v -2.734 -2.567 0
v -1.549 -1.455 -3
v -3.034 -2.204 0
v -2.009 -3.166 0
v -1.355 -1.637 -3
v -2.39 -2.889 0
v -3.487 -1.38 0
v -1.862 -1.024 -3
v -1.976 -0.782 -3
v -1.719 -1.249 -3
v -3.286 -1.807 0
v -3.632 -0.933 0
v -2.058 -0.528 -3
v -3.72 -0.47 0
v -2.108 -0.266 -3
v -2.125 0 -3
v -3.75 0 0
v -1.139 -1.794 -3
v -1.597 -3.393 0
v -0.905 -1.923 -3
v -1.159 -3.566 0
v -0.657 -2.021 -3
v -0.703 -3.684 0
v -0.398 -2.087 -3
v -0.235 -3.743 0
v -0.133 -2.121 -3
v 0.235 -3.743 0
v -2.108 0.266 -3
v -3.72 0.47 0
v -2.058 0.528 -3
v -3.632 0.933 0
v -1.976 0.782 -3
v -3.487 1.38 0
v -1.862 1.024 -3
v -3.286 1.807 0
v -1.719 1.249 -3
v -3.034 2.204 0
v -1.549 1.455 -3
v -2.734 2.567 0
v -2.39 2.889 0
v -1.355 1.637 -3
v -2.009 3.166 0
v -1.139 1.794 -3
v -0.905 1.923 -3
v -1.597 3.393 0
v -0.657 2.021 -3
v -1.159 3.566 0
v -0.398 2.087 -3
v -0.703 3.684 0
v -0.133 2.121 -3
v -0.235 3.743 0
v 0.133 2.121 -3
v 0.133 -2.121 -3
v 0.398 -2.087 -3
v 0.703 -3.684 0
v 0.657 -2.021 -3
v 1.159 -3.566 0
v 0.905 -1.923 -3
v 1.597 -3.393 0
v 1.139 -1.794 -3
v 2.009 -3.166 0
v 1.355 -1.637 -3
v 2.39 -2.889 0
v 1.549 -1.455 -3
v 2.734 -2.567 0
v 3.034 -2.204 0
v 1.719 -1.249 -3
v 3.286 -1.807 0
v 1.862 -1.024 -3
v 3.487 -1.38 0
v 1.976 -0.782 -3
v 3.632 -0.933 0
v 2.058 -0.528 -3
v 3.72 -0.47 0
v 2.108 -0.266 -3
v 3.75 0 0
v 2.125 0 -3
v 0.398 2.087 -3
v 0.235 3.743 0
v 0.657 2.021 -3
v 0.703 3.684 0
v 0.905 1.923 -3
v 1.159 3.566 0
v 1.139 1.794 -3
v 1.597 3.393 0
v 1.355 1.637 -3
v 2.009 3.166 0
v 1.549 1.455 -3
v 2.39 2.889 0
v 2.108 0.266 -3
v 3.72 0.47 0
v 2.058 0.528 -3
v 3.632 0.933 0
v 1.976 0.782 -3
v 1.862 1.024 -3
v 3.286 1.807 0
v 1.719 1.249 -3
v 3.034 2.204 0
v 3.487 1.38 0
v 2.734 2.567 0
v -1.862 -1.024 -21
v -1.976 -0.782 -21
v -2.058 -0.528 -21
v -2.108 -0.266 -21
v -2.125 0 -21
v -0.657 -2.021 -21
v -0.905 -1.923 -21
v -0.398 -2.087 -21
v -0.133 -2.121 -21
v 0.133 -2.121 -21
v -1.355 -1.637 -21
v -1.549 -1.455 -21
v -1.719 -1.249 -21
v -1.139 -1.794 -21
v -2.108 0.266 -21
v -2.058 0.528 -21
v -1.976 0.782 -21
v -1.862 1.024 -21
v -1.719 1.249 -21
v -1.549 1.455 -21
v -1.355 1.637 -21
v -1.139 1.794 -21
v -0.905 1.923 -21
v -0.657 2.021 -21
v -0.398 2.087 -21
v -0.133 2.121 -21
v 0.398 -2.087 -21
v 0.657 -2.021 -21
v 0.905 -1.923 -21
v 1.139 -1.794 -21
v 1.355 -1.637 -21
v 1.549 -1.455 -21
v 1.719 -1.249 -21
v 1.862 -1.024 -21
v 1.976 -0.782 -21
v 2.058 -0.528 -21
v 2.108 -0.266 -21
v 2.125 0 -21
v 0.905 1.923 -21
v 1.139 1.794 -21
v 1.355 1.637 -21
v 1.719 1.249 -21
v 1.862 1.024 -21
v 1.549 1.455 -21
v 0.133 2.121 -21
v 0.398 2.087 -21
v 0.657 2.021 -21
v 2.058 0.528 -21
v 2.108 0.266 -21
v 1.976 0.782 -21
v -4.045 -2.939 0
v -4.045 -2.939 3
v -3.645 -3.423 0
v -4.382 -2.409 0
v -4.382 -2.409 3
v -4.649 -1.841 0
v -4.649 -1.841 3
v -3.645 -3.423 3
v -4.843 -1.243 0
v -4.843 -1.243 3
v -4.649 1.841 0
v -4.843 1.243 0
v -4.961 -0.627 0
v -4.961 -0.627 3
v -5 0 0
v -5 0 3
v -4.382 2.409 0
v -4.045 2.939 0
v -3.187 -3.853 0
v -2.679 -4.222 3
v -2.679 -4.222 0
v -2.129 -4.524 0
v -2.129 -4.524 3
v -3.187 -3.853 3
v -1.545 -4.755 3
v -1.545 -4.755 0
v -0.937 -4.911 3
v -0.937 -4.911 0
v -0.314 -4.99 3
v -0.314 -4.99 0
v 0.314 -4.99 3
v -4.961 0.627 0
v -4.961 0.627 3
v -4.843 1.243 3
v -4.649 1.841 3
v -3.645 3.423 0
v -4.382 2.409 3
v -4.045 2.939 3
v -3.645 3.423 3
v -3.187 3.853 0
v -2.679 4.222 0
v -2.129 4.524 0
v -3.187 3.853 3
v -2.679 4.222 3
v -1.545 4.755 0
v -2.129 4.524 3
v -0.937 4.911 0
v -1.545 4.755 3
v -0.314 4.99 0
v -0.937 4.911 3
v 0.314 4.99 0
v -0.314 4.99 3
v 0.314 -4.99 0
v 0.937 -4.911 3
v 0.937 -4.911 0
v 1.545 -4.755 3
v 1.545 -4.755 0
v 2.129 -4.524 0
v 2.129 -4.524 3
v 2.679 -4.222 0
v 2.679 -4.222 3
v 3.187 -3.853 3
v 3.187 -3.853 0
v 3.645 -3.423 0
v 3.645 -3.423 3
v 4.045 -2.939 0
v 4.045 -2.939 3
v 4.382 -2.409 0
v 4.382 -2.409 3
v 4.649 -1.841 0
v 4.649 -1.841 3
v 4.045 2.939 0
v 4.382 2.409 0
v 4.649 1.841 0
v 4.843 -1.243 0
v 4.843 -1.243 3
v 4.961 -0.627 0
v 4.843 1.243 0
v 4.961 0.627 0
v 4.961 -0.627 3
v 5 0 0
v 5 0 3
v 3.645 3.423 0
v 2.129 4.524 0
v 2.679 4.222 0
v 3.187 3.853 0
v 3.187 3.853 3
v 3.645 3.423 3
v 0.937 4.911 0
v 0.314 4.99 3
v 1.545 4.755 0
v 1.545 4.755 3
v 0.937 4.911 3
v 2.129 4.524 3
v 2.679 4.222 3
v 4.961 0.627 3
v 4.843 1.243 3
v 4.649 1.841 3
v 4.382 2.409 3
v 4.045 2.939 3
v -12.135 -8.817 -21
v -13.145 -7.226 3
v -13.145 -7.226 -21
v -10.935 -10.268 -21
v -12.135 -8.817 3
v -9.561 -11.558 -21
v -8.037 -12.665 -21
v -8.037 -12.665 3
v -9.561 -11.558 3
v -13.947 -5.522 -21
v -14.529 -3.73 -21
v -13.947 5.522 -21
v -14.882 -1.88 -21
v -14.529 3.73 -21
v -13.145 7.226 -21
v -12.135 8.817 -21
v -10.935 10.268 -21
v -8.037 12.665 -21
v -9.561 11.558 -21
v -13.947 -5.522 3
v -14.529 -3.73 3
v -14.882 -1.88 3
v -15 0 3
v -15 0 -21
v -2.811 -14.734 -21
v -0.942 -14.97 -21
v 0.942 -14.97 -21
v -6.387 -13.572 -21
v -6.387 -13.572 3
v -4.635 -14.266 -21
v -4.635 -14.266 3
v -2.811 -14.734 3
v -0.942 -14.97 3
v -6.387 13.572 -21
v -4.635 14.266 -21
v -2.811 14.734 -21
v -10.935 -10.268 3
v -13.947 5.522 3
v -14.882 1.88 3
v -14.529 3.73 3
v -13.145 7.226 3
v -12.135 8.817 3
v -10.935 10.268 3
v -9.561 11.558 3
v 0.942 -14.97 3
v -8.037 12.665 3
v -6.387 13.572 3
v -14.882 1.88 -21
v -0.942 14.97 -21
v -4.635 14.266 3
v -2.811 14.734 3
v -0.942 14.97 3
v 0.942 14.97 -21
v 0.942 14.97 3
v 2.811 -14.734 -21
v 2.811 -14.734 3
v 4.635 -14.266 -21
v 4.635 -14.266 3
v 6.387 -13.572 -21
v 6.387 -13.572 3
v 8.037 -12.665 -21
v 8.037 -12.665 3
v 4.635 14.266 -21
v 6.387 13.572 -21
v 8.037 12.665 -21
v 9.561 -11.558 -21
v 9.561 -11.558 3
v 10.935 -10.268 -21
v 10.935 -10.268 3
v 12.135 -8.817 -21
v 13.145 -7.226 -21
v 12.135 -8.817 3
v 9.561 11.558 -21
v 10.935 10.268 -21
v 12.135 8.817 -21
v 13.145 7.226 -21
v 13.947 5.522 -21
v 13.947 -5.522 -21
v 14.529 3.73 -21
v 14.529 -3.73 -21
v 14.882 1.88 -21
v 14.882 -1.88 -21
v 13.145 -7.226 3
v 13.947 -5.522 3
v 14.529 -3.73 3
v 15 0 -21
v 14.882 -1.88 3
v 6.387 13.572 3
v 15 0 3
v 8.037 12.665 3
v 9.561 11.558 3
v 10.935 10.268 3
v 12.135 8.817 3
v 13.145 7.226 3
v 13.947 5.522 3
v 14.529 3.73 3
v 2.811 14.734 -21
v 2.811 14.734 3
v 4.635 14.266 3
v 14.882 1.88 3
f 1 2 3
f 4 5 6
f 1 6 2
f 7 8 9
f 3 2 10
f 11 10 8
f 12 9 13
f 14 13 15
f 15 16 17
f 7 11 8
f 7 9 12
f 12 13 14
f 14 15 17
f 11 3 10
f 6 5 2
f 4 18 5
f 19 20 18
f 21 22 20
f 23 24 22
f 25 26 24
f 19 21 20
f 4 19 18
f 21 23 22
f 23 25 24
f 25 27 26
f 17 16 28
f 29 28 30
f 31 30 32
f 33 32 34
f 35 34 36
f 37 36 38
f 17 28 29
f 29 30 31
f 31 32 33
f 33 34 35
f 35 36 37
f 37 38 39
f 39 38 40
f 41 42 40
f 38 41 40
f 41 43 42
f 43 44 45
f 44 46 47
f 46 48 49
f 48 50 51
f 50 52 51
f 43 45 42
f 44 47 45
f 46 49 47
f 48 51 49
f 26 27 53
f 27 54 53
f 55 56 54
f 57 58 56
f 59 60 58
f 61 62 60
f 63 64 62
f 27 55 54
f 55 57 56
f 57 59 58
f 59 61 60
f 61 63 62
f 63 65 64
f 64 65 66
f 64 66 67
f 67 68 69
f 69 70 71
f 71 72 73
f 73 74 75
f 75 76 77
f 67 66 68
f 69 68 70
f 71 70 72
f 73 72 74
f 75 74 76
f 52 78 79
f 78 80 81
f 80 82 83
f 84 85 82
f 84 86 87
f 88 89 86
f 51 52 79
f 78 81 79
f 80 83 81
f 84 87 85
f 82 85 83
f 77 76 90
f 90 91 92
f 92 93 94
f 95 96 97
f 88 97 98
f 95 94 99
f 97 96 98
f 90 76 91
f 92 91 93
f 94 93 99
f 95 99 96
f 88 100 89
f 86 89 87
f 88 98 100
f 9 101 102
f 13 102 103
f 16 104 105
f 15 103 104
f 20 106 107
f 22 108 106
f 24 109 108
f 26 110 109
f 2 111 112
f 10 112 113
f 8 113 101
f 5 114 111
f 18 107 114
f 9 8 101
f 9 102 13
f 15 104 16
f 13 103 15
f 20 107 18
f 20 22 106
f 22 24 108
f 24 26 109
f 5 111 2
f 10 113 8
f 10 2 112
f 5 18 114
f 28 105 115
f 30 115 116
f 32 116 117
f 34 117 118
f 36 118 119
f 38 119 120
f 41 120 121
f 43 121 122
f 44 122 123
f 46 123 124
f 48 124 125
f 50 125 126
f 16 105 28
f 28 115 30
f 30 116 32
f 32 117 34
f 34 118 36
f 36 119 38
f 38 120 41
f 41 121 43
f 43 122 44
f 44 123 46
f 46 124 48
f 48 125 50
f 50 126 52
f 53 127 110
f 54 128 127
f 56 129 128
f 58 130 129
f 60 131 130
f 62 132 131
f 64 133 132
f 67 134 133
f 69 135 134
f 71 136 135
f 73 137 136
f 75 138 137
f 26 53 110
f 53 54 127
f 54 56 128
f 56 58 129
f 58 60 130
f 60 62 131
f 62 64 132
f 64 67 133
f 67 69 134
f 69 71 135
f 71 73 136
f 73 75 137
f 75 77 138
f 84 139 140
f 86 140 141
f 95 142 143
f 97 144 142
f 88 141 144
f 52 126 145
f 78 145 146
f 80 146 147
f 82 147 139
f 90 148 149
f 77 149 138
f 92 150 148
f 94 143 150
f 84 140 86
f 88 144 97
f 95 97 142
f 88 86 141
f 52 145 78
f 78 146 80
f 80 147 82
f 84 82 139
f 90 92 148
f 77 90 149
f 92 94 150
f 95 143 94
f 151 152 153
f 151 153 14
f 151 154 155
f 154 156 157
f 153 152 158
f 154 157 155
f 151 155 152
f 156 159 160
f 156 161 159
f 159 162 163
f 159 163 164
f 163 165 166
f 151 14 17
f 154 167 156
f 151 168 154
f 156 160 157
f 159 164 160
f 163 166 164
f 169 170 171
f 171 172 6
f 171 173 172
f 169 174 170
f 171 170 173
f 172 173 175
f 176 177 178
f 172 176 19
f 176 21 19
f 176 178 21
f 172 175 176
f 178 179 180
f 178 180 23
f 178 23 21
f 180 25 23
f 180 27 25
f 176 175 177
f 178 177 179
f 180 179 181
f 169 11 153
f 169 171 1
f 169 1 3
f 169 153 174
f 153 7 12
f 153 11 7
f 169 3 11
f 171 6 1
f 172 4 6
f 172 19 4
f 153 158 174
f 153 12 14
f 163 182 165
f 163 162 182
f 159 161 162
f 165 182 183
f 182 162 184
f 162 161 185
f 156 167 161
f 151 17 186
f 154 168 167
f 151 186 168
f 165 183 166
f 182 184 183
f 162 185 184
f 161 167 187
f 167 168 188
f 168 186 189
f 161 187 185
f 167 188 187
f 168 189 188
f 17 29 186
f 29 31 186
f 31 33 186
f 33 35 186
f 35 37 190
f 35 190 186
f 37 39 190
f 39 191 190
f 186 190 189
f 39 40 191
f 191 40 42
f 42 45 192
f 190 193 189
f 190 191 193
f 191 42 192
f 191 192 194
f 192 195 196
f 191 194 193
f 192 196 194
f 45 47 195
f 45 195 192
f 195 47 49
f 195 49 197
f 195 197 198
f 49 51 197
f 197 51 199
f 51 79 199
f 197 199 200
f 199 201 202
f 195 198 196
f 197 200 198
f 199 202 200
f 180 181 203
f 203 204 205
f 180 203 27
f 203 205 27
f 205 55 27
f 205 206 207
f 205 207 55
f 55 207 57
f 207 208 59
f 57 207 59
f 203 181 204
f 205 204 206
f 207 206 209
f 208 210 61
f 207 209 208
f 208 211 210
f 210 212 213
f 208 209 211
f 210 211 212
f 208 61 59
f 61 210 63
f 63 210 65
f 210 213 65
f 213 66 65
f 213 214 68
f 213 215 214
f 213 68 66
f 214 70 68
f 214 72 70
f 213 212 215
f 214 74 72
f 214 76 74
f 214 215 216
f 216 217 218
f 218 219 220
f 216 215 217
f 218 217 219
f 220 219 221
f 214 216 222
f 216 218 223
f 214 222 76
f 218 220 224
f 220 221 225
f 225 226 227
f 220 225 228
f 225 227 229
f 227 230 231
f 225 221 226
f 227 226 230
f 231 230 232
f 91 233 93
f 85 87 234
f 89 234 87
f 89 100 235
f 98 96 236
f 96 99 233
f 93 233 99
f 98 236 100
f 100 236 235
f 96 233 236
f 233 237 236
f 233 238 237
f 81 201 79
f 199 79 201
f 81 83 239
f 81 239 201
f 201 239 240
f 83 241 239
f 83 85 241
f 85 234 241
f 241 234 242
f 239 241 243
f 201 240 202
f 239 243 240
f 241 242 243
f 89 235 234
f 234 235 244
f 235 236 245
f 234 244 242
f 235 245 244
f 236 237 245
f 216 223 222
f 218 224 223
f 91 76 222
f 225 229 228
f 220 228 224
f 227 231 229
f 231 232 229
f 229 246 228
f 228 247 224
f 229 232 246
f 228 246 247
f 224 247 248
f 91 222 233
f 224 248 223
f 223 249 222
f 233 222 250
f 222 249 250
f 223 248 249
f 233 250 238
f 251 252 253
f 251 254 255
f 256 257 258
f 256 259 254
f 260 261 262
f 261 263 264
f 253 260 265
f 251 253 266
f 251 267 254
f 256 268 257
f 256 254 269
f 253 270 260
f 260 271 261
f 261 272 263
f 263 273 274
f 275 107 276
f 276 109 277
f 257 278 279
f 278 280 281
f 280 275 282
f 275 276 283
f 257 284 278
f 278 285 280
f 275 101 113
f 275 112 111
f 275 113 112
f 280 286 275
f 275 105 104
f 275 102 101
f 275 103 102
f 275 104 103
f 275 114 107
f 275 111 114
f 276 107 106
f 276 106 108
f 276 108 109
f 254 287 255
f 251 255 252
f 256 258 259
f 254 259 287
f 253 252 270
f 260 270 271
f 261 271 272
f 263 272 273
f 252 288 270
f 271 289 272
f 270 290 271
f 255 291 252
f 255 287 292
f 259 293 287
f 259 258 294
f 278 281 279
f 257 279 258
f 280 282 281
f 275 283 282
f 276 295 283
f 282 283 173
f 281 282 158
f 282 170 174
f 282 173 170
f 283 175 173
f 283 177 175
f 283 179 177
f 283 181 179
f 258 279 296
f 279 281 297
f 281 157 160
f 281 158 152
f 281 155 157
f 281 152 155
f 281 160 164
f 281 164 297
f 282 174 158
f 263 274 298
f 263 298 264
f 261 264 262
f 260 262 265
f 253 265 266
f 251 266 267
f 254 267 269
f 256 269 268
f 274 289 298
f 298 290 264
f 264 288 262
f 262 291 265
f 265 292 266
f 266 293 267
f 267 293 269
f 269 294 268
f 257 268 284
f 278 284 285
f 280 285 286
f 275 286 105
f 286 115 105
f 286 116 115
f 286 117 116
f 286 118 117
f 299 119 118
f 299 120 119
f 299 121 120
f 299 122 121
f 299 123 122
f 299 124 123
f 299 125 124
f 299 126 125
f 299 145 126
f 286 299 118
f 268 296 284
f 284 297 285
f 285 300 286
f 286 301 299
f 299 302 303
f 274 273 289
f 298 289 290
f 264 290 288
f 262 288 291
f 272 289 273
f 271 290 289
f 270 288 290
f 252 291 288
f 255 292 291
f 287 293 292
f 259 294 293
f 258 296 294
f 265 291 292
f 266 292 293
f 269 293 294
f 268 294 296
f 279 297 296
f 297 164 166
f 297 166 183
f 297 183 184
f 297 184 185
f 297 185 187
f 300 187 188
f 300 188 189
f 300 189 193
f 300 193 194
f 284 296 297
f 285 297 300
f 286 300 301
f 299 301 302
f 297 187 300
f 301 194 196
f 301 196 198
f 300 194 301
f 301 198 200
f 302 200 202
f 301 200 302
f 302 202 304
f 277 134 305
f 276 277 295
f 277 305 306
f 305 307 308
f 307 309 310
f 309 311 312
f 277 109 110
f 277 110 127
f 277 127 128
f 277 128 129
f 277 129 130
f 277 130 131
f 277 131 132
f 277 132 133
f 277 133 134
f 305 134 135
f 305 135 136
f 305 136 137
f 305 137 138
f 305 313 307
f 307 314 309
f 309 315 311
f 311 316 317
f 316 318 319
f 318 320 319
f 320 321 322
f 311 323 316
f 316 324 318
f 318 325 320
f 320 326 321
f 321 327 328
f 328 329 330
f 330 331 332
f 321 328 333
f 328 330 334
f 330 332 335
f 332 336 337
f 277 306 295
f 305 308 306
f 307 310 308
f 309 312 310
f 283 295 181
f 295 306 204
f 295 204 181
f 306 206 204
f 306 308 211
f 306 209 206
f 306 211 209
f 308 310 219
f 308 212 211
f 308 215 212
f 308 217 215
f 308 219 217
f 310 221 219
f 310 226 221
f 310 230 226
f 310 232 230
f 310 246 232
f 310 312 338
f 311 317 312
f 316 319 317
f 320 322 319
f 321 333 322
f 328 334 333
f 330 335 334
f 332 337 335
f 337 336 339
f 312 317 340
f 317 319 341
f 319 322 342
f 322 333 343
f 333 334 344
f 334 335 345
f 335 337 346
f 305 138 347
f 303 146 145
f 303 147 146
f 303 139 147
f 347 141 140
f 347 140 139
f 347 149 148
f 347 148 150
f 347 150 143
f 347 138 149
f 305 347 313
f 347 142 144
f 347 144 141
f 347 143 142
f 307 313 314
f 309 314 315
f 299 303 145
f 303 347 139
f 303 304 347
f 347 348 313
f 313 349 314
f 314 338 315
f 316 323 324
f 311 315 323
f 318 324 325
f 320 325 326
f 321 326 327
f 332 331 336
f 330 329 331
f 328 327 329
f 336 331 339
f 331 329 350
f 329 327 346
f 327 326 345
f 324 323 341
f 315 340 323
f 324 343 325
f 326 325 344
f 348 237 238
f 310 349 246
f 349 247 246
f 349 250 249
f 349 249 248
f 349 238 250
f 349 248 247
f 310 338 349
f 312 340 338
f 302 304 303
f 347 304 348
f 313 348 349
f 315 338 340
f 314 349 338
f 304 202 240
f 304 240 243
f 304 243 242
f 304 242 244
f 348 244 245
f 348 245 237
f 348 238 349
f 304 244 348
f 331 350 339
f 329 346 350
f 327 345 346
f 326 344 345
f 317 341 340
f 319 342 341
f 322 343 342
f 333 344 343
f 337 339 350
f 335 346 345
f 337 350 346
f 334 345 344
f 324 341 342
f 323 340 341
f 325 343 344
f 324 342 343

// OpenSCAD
$fn = 50;

difference() {
	union() {
		translate(v = [0, 0, -21.0]) {
			cylinder(h = 24, r = 15.0);
		}
	}
	union() {
		translate(v = [0, 0, 0]) {
			rotate(a = [0, 0, 0]) {
				difference() {
					union() {
						translate(v = [0, 0, -24.0]) {
							cylinder(h = 24, r = 2.0);
						}
						translate(v = [0, 0, -3]) {
							cylinder(h = 3, r1 = 2.125, r2 = 3.75);
						}
						translate(v = [0, 0, -24.0]) {
							cylinder(h = 24, r = 2.125);
						}
						translate(v = [0, 0, -24.0]) {
							cylinder(h = 24, r = 2.0);
						}
					}
					union();
				}
			}
		}
		#cylinder(h = 3, r = 5.0);
	}
}
